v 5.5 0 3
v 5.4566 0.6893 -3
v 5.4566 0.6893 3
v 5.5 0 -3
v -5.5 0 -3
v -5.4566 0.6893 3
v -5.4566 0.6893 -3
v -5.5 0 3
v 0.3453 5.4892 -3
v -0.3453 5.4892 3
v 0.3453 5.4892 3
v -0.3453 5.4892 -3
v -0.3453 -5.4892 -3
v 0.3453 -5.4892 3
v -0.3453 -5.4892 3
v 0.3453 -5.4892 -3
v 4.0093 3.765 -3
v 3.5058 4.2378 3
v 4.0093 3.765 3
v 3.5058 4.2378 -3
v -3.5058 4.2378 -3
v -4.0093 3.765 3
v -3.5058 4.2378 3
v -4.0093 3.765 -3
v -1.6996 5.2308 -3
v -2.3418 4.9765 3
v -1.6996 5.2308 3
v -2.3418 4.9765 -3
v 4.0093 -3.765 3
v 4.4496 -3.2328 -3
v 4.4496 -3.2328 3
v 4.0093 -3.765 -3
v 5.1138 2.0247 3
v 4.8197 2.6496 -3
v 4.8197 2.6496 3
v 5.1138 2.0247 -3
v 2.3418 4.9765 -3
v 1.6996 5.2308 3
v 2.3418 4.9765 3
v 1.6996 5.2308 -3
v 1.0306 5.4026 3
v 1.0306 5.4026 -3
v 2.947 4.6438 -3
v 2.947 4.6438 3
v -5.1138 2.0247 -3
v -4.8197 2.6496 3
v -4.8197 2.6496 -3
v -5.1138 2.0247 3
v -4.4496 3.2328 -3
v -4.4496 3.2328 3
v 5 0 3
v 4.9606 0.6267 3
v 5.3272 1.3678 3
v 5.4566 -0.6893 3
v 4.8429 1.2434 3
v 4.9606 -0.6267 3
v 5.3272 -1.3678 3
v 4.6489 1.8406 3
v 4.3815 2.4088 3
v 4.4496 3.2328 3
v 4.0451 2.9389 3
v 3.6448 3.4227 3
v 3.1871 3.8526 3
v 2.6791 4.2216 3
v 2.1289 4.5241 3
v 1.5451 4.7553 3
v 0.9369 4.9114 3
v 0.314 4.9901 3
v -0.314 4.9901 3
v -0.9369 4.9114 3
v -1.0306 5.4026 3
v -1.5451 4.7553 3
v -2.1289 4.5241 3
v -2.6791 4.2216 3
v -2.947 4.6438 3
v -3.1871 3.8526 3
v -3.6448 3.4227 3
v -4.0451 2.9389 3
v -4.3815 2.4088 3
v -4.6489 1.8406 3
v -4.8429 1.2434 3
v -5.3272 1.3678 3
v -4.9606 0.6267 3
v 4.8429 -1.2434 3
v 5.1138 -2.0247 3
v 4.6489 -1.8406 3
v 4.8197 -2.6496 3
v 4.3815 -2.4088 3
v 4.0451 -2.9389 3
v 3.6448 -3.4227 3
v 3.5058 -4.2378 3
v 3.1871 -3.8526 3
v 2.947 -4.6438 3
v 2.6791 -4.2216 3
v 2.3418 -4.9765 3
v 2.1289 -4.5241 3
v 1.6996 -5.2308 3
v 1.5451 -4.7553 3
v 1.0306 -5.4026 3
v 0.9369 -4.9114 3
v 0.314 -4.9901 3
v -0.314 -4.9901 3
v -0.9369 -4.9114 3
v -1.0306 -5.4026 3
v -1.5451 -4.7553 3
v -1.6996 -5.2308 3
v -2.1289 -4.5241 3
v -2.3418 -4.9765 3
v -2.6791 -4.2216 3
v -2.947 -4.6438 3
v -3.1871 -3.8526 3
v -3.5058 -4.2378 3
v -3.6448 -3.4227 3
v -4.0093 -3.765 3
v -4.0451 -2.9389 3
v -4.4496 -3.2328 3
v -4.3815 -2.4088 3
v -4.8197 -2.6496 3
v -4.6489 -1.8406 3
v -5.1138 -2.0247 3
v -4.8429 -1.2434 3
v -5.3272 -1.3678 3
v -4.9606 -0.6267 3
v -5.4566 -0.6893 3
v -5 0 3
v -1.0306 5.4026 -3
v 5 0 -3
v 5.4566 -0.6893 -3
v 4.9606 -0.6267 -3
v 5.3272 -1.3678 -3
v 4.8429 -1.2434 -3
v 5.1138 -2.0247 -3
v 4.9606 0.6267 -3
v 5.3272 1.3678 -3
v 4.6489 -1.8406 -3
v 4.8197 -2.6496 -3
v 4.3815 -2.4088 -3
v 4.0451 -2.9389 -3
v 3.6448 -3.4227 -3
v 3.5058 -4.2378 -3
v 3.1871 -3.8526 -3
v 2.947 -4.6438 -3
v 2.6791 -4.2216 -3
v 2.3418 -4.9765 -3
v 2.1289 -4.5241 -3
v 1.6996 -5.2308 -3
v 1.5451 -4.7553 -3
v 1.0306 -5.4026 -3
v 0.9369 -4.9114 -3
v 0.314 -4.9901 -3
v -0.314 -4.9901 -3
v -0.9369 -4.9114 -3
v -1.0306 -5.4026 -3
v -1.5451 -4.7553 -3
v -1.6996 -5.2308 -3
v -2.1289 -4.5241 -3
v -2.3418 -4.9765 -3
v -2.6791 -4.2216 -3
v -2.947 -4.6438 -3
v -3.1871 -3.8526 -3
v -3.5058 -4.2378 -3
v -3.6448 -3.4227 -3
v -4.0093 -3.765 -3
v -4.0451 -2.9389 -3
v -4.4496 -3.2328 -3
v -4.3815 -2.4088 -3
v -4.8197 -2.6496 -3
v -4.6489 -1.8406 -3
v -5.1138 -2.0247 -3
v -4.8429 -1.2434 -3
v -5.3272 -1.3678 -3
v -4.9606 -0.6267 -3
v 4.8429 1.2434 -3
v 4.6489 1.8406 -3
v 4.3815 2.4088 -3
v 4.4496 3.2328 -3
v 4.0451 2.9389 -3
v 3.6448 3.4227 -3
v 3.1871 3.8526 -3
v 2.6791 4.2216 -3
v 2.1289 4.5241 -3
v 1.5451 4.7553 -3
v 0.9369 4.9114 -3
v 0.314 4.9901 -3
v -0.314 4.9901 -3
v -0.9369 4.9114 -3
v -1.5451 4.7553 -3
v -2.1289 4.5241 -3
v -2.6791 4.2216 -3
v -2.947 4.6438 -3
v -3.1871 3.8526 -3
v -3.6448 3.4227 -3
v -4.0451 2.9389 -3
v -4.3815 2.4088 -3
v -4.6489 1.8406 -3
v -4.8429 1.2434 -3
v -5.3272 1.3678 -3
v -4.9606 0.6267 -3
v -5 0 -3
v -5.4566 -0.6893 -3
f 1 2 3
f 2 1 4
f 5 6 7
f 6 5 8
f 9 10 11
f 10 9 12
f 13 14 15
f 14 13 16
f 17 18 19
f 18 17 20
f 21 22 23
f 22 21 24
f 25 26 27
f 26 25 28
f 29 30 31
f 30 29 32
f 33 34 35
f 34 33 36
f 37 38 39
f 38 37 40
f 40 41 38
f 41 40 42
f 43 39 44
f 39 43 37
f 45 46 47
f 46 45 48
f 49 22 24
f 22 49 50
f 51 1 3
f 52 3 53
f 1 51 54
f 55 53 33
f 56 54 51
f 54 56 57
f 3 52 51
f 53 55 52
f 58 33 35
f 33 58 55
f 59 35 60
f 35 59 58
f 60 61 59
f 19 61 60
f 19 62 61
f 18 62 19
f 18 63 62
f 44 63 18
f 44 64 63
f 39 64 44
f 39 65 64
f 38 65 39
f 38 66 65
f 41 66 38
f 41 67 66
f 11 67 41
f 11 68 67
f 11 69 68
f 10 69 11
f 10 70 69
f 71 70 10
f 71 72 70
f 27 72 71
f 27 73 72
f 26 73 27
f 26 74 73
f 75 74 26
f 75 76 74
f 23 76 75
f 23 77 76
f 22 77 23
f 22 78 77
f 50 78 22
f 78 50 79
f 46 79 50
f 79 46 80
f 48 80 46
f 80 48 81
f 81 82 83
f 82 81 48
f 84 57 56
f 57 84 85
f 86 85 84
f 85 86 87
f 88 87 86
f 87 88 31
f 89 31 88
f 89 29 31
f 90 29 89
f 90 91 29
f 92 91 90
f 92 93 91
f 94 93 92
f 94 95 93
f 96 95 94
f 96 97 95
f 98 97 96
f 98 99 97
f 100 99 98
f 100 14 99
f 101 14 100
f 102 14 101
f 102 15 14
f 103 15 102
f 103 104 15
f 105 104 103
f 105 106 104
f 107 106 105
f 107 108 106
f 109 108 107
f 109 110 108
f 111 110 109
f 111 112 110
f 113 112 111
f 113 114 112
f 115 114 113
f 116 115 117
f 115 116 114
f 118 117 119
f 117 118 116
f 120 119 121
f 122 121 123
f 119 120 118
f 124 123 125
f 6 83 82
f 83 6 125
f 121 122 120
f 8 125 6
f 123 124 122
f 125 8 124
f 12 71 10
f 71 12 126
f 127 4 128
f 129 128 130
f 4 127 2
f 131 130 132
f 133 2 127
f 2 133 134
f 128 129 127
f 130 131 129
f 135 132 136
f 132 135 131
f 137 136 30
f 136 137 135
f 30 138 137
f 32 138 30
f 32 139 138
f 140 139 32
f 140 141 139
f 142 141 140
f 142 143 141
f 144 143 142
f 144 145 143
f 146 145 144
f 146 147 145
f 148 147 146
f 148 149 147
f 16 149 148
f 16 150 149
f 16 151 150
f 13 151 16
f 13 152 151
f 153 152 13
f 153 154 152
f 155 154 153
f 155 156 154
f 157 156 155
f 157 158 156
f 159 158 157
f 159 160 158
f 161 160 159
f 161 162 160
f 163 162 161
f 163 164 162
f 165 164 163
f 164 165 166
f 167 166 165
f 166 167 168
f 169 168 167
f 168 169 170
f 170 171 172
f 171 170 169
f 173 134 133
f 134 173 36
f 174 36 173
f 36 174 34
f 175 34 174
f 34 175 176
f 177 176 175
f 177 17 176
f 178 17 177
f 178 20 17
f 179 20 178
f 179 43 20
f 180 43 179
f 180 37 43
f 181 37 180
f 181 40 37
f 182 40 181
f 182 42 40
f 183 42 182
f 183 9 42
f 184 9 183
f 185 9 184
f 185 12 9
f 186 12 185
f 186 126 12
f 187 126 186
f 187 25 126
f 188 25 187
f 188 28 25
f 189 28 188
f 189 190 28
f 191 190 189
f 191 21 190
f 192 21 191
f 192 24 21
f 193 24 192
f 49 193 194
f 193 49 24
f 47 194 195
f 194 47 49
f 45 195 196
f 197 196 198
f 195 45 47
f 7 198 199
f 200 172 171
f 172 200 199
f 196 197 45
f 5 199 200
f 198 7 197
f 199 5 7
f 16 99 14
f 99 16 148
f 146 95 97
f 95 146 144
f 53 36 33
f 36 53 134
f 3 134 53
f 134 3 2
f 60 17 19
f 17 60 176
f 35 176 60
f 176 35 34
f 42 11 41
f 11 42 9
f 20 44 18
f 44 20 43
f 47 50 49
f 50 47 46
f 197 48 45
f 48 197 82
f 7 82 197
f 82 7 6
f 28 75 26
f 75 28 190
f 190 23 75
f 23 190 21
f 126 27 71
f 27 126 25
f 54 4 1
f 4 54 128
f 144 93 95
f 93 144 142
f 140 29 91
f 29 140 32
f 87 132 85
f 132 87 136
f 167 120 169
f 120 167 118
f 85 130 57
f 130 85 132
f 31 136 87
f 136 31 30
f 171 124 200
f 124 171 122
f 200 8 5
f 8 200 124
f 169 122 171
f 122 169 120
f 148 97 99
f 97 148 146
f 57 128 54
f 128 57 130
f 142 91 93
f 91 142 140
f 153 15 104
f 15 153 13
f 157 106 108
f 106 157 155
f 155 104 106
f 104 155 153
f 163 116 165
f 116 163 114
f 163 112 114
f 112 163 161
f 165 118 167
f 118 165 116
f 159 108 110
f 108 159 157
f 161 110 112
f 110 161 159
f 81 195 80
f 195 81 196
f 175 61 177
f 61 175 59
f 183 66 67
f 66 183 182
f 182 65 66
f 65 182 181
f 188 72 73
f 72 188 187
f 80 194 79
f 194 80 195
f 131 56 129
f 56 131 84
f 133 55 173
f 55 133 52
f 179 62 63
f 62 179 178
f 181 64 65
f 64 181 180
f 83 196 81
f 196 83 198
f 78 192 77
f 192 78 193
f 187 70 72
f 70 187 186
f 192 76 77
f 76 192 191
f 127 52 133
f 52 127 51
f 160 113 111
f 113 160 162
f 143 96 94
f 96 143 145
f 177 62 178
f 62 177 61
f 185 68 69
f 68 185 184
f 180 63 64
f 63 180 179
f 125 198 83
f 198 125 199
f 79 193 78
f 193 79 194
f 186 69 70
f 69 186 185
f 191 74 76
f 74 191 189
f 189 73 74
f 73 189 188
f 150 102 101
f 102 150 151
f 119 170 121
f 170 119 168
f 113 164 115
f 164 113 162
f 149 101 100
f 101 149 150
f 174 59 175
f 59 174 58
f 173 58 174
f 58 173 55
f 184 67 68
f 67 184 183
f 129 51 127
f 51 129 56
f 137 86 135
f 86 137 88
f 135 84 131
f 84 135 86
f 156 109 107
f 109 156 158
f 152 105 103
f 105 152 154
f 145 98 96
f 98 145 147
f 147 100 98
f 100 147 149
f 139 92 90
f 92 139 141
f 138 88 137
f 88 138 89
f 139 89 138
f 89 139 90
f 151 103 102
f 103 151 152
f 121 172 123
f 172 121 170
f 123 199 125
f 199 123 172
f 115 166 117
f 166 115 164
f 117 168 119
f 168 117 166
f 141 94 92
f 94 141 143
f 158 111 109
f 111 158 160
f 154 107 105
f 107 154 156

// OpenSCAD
$fn = 50;


difference() {
	union() {
		translate(v = [0, 0, -3.0000000000]) {
			cylinder(h = 6, r = 5.5000000000);
		}
	}
	union() {
		translate(v = [0, 0, -100.0000000000]) {
			cylinder(h = 200, r = 5.0000000000);
		}
	}
}
